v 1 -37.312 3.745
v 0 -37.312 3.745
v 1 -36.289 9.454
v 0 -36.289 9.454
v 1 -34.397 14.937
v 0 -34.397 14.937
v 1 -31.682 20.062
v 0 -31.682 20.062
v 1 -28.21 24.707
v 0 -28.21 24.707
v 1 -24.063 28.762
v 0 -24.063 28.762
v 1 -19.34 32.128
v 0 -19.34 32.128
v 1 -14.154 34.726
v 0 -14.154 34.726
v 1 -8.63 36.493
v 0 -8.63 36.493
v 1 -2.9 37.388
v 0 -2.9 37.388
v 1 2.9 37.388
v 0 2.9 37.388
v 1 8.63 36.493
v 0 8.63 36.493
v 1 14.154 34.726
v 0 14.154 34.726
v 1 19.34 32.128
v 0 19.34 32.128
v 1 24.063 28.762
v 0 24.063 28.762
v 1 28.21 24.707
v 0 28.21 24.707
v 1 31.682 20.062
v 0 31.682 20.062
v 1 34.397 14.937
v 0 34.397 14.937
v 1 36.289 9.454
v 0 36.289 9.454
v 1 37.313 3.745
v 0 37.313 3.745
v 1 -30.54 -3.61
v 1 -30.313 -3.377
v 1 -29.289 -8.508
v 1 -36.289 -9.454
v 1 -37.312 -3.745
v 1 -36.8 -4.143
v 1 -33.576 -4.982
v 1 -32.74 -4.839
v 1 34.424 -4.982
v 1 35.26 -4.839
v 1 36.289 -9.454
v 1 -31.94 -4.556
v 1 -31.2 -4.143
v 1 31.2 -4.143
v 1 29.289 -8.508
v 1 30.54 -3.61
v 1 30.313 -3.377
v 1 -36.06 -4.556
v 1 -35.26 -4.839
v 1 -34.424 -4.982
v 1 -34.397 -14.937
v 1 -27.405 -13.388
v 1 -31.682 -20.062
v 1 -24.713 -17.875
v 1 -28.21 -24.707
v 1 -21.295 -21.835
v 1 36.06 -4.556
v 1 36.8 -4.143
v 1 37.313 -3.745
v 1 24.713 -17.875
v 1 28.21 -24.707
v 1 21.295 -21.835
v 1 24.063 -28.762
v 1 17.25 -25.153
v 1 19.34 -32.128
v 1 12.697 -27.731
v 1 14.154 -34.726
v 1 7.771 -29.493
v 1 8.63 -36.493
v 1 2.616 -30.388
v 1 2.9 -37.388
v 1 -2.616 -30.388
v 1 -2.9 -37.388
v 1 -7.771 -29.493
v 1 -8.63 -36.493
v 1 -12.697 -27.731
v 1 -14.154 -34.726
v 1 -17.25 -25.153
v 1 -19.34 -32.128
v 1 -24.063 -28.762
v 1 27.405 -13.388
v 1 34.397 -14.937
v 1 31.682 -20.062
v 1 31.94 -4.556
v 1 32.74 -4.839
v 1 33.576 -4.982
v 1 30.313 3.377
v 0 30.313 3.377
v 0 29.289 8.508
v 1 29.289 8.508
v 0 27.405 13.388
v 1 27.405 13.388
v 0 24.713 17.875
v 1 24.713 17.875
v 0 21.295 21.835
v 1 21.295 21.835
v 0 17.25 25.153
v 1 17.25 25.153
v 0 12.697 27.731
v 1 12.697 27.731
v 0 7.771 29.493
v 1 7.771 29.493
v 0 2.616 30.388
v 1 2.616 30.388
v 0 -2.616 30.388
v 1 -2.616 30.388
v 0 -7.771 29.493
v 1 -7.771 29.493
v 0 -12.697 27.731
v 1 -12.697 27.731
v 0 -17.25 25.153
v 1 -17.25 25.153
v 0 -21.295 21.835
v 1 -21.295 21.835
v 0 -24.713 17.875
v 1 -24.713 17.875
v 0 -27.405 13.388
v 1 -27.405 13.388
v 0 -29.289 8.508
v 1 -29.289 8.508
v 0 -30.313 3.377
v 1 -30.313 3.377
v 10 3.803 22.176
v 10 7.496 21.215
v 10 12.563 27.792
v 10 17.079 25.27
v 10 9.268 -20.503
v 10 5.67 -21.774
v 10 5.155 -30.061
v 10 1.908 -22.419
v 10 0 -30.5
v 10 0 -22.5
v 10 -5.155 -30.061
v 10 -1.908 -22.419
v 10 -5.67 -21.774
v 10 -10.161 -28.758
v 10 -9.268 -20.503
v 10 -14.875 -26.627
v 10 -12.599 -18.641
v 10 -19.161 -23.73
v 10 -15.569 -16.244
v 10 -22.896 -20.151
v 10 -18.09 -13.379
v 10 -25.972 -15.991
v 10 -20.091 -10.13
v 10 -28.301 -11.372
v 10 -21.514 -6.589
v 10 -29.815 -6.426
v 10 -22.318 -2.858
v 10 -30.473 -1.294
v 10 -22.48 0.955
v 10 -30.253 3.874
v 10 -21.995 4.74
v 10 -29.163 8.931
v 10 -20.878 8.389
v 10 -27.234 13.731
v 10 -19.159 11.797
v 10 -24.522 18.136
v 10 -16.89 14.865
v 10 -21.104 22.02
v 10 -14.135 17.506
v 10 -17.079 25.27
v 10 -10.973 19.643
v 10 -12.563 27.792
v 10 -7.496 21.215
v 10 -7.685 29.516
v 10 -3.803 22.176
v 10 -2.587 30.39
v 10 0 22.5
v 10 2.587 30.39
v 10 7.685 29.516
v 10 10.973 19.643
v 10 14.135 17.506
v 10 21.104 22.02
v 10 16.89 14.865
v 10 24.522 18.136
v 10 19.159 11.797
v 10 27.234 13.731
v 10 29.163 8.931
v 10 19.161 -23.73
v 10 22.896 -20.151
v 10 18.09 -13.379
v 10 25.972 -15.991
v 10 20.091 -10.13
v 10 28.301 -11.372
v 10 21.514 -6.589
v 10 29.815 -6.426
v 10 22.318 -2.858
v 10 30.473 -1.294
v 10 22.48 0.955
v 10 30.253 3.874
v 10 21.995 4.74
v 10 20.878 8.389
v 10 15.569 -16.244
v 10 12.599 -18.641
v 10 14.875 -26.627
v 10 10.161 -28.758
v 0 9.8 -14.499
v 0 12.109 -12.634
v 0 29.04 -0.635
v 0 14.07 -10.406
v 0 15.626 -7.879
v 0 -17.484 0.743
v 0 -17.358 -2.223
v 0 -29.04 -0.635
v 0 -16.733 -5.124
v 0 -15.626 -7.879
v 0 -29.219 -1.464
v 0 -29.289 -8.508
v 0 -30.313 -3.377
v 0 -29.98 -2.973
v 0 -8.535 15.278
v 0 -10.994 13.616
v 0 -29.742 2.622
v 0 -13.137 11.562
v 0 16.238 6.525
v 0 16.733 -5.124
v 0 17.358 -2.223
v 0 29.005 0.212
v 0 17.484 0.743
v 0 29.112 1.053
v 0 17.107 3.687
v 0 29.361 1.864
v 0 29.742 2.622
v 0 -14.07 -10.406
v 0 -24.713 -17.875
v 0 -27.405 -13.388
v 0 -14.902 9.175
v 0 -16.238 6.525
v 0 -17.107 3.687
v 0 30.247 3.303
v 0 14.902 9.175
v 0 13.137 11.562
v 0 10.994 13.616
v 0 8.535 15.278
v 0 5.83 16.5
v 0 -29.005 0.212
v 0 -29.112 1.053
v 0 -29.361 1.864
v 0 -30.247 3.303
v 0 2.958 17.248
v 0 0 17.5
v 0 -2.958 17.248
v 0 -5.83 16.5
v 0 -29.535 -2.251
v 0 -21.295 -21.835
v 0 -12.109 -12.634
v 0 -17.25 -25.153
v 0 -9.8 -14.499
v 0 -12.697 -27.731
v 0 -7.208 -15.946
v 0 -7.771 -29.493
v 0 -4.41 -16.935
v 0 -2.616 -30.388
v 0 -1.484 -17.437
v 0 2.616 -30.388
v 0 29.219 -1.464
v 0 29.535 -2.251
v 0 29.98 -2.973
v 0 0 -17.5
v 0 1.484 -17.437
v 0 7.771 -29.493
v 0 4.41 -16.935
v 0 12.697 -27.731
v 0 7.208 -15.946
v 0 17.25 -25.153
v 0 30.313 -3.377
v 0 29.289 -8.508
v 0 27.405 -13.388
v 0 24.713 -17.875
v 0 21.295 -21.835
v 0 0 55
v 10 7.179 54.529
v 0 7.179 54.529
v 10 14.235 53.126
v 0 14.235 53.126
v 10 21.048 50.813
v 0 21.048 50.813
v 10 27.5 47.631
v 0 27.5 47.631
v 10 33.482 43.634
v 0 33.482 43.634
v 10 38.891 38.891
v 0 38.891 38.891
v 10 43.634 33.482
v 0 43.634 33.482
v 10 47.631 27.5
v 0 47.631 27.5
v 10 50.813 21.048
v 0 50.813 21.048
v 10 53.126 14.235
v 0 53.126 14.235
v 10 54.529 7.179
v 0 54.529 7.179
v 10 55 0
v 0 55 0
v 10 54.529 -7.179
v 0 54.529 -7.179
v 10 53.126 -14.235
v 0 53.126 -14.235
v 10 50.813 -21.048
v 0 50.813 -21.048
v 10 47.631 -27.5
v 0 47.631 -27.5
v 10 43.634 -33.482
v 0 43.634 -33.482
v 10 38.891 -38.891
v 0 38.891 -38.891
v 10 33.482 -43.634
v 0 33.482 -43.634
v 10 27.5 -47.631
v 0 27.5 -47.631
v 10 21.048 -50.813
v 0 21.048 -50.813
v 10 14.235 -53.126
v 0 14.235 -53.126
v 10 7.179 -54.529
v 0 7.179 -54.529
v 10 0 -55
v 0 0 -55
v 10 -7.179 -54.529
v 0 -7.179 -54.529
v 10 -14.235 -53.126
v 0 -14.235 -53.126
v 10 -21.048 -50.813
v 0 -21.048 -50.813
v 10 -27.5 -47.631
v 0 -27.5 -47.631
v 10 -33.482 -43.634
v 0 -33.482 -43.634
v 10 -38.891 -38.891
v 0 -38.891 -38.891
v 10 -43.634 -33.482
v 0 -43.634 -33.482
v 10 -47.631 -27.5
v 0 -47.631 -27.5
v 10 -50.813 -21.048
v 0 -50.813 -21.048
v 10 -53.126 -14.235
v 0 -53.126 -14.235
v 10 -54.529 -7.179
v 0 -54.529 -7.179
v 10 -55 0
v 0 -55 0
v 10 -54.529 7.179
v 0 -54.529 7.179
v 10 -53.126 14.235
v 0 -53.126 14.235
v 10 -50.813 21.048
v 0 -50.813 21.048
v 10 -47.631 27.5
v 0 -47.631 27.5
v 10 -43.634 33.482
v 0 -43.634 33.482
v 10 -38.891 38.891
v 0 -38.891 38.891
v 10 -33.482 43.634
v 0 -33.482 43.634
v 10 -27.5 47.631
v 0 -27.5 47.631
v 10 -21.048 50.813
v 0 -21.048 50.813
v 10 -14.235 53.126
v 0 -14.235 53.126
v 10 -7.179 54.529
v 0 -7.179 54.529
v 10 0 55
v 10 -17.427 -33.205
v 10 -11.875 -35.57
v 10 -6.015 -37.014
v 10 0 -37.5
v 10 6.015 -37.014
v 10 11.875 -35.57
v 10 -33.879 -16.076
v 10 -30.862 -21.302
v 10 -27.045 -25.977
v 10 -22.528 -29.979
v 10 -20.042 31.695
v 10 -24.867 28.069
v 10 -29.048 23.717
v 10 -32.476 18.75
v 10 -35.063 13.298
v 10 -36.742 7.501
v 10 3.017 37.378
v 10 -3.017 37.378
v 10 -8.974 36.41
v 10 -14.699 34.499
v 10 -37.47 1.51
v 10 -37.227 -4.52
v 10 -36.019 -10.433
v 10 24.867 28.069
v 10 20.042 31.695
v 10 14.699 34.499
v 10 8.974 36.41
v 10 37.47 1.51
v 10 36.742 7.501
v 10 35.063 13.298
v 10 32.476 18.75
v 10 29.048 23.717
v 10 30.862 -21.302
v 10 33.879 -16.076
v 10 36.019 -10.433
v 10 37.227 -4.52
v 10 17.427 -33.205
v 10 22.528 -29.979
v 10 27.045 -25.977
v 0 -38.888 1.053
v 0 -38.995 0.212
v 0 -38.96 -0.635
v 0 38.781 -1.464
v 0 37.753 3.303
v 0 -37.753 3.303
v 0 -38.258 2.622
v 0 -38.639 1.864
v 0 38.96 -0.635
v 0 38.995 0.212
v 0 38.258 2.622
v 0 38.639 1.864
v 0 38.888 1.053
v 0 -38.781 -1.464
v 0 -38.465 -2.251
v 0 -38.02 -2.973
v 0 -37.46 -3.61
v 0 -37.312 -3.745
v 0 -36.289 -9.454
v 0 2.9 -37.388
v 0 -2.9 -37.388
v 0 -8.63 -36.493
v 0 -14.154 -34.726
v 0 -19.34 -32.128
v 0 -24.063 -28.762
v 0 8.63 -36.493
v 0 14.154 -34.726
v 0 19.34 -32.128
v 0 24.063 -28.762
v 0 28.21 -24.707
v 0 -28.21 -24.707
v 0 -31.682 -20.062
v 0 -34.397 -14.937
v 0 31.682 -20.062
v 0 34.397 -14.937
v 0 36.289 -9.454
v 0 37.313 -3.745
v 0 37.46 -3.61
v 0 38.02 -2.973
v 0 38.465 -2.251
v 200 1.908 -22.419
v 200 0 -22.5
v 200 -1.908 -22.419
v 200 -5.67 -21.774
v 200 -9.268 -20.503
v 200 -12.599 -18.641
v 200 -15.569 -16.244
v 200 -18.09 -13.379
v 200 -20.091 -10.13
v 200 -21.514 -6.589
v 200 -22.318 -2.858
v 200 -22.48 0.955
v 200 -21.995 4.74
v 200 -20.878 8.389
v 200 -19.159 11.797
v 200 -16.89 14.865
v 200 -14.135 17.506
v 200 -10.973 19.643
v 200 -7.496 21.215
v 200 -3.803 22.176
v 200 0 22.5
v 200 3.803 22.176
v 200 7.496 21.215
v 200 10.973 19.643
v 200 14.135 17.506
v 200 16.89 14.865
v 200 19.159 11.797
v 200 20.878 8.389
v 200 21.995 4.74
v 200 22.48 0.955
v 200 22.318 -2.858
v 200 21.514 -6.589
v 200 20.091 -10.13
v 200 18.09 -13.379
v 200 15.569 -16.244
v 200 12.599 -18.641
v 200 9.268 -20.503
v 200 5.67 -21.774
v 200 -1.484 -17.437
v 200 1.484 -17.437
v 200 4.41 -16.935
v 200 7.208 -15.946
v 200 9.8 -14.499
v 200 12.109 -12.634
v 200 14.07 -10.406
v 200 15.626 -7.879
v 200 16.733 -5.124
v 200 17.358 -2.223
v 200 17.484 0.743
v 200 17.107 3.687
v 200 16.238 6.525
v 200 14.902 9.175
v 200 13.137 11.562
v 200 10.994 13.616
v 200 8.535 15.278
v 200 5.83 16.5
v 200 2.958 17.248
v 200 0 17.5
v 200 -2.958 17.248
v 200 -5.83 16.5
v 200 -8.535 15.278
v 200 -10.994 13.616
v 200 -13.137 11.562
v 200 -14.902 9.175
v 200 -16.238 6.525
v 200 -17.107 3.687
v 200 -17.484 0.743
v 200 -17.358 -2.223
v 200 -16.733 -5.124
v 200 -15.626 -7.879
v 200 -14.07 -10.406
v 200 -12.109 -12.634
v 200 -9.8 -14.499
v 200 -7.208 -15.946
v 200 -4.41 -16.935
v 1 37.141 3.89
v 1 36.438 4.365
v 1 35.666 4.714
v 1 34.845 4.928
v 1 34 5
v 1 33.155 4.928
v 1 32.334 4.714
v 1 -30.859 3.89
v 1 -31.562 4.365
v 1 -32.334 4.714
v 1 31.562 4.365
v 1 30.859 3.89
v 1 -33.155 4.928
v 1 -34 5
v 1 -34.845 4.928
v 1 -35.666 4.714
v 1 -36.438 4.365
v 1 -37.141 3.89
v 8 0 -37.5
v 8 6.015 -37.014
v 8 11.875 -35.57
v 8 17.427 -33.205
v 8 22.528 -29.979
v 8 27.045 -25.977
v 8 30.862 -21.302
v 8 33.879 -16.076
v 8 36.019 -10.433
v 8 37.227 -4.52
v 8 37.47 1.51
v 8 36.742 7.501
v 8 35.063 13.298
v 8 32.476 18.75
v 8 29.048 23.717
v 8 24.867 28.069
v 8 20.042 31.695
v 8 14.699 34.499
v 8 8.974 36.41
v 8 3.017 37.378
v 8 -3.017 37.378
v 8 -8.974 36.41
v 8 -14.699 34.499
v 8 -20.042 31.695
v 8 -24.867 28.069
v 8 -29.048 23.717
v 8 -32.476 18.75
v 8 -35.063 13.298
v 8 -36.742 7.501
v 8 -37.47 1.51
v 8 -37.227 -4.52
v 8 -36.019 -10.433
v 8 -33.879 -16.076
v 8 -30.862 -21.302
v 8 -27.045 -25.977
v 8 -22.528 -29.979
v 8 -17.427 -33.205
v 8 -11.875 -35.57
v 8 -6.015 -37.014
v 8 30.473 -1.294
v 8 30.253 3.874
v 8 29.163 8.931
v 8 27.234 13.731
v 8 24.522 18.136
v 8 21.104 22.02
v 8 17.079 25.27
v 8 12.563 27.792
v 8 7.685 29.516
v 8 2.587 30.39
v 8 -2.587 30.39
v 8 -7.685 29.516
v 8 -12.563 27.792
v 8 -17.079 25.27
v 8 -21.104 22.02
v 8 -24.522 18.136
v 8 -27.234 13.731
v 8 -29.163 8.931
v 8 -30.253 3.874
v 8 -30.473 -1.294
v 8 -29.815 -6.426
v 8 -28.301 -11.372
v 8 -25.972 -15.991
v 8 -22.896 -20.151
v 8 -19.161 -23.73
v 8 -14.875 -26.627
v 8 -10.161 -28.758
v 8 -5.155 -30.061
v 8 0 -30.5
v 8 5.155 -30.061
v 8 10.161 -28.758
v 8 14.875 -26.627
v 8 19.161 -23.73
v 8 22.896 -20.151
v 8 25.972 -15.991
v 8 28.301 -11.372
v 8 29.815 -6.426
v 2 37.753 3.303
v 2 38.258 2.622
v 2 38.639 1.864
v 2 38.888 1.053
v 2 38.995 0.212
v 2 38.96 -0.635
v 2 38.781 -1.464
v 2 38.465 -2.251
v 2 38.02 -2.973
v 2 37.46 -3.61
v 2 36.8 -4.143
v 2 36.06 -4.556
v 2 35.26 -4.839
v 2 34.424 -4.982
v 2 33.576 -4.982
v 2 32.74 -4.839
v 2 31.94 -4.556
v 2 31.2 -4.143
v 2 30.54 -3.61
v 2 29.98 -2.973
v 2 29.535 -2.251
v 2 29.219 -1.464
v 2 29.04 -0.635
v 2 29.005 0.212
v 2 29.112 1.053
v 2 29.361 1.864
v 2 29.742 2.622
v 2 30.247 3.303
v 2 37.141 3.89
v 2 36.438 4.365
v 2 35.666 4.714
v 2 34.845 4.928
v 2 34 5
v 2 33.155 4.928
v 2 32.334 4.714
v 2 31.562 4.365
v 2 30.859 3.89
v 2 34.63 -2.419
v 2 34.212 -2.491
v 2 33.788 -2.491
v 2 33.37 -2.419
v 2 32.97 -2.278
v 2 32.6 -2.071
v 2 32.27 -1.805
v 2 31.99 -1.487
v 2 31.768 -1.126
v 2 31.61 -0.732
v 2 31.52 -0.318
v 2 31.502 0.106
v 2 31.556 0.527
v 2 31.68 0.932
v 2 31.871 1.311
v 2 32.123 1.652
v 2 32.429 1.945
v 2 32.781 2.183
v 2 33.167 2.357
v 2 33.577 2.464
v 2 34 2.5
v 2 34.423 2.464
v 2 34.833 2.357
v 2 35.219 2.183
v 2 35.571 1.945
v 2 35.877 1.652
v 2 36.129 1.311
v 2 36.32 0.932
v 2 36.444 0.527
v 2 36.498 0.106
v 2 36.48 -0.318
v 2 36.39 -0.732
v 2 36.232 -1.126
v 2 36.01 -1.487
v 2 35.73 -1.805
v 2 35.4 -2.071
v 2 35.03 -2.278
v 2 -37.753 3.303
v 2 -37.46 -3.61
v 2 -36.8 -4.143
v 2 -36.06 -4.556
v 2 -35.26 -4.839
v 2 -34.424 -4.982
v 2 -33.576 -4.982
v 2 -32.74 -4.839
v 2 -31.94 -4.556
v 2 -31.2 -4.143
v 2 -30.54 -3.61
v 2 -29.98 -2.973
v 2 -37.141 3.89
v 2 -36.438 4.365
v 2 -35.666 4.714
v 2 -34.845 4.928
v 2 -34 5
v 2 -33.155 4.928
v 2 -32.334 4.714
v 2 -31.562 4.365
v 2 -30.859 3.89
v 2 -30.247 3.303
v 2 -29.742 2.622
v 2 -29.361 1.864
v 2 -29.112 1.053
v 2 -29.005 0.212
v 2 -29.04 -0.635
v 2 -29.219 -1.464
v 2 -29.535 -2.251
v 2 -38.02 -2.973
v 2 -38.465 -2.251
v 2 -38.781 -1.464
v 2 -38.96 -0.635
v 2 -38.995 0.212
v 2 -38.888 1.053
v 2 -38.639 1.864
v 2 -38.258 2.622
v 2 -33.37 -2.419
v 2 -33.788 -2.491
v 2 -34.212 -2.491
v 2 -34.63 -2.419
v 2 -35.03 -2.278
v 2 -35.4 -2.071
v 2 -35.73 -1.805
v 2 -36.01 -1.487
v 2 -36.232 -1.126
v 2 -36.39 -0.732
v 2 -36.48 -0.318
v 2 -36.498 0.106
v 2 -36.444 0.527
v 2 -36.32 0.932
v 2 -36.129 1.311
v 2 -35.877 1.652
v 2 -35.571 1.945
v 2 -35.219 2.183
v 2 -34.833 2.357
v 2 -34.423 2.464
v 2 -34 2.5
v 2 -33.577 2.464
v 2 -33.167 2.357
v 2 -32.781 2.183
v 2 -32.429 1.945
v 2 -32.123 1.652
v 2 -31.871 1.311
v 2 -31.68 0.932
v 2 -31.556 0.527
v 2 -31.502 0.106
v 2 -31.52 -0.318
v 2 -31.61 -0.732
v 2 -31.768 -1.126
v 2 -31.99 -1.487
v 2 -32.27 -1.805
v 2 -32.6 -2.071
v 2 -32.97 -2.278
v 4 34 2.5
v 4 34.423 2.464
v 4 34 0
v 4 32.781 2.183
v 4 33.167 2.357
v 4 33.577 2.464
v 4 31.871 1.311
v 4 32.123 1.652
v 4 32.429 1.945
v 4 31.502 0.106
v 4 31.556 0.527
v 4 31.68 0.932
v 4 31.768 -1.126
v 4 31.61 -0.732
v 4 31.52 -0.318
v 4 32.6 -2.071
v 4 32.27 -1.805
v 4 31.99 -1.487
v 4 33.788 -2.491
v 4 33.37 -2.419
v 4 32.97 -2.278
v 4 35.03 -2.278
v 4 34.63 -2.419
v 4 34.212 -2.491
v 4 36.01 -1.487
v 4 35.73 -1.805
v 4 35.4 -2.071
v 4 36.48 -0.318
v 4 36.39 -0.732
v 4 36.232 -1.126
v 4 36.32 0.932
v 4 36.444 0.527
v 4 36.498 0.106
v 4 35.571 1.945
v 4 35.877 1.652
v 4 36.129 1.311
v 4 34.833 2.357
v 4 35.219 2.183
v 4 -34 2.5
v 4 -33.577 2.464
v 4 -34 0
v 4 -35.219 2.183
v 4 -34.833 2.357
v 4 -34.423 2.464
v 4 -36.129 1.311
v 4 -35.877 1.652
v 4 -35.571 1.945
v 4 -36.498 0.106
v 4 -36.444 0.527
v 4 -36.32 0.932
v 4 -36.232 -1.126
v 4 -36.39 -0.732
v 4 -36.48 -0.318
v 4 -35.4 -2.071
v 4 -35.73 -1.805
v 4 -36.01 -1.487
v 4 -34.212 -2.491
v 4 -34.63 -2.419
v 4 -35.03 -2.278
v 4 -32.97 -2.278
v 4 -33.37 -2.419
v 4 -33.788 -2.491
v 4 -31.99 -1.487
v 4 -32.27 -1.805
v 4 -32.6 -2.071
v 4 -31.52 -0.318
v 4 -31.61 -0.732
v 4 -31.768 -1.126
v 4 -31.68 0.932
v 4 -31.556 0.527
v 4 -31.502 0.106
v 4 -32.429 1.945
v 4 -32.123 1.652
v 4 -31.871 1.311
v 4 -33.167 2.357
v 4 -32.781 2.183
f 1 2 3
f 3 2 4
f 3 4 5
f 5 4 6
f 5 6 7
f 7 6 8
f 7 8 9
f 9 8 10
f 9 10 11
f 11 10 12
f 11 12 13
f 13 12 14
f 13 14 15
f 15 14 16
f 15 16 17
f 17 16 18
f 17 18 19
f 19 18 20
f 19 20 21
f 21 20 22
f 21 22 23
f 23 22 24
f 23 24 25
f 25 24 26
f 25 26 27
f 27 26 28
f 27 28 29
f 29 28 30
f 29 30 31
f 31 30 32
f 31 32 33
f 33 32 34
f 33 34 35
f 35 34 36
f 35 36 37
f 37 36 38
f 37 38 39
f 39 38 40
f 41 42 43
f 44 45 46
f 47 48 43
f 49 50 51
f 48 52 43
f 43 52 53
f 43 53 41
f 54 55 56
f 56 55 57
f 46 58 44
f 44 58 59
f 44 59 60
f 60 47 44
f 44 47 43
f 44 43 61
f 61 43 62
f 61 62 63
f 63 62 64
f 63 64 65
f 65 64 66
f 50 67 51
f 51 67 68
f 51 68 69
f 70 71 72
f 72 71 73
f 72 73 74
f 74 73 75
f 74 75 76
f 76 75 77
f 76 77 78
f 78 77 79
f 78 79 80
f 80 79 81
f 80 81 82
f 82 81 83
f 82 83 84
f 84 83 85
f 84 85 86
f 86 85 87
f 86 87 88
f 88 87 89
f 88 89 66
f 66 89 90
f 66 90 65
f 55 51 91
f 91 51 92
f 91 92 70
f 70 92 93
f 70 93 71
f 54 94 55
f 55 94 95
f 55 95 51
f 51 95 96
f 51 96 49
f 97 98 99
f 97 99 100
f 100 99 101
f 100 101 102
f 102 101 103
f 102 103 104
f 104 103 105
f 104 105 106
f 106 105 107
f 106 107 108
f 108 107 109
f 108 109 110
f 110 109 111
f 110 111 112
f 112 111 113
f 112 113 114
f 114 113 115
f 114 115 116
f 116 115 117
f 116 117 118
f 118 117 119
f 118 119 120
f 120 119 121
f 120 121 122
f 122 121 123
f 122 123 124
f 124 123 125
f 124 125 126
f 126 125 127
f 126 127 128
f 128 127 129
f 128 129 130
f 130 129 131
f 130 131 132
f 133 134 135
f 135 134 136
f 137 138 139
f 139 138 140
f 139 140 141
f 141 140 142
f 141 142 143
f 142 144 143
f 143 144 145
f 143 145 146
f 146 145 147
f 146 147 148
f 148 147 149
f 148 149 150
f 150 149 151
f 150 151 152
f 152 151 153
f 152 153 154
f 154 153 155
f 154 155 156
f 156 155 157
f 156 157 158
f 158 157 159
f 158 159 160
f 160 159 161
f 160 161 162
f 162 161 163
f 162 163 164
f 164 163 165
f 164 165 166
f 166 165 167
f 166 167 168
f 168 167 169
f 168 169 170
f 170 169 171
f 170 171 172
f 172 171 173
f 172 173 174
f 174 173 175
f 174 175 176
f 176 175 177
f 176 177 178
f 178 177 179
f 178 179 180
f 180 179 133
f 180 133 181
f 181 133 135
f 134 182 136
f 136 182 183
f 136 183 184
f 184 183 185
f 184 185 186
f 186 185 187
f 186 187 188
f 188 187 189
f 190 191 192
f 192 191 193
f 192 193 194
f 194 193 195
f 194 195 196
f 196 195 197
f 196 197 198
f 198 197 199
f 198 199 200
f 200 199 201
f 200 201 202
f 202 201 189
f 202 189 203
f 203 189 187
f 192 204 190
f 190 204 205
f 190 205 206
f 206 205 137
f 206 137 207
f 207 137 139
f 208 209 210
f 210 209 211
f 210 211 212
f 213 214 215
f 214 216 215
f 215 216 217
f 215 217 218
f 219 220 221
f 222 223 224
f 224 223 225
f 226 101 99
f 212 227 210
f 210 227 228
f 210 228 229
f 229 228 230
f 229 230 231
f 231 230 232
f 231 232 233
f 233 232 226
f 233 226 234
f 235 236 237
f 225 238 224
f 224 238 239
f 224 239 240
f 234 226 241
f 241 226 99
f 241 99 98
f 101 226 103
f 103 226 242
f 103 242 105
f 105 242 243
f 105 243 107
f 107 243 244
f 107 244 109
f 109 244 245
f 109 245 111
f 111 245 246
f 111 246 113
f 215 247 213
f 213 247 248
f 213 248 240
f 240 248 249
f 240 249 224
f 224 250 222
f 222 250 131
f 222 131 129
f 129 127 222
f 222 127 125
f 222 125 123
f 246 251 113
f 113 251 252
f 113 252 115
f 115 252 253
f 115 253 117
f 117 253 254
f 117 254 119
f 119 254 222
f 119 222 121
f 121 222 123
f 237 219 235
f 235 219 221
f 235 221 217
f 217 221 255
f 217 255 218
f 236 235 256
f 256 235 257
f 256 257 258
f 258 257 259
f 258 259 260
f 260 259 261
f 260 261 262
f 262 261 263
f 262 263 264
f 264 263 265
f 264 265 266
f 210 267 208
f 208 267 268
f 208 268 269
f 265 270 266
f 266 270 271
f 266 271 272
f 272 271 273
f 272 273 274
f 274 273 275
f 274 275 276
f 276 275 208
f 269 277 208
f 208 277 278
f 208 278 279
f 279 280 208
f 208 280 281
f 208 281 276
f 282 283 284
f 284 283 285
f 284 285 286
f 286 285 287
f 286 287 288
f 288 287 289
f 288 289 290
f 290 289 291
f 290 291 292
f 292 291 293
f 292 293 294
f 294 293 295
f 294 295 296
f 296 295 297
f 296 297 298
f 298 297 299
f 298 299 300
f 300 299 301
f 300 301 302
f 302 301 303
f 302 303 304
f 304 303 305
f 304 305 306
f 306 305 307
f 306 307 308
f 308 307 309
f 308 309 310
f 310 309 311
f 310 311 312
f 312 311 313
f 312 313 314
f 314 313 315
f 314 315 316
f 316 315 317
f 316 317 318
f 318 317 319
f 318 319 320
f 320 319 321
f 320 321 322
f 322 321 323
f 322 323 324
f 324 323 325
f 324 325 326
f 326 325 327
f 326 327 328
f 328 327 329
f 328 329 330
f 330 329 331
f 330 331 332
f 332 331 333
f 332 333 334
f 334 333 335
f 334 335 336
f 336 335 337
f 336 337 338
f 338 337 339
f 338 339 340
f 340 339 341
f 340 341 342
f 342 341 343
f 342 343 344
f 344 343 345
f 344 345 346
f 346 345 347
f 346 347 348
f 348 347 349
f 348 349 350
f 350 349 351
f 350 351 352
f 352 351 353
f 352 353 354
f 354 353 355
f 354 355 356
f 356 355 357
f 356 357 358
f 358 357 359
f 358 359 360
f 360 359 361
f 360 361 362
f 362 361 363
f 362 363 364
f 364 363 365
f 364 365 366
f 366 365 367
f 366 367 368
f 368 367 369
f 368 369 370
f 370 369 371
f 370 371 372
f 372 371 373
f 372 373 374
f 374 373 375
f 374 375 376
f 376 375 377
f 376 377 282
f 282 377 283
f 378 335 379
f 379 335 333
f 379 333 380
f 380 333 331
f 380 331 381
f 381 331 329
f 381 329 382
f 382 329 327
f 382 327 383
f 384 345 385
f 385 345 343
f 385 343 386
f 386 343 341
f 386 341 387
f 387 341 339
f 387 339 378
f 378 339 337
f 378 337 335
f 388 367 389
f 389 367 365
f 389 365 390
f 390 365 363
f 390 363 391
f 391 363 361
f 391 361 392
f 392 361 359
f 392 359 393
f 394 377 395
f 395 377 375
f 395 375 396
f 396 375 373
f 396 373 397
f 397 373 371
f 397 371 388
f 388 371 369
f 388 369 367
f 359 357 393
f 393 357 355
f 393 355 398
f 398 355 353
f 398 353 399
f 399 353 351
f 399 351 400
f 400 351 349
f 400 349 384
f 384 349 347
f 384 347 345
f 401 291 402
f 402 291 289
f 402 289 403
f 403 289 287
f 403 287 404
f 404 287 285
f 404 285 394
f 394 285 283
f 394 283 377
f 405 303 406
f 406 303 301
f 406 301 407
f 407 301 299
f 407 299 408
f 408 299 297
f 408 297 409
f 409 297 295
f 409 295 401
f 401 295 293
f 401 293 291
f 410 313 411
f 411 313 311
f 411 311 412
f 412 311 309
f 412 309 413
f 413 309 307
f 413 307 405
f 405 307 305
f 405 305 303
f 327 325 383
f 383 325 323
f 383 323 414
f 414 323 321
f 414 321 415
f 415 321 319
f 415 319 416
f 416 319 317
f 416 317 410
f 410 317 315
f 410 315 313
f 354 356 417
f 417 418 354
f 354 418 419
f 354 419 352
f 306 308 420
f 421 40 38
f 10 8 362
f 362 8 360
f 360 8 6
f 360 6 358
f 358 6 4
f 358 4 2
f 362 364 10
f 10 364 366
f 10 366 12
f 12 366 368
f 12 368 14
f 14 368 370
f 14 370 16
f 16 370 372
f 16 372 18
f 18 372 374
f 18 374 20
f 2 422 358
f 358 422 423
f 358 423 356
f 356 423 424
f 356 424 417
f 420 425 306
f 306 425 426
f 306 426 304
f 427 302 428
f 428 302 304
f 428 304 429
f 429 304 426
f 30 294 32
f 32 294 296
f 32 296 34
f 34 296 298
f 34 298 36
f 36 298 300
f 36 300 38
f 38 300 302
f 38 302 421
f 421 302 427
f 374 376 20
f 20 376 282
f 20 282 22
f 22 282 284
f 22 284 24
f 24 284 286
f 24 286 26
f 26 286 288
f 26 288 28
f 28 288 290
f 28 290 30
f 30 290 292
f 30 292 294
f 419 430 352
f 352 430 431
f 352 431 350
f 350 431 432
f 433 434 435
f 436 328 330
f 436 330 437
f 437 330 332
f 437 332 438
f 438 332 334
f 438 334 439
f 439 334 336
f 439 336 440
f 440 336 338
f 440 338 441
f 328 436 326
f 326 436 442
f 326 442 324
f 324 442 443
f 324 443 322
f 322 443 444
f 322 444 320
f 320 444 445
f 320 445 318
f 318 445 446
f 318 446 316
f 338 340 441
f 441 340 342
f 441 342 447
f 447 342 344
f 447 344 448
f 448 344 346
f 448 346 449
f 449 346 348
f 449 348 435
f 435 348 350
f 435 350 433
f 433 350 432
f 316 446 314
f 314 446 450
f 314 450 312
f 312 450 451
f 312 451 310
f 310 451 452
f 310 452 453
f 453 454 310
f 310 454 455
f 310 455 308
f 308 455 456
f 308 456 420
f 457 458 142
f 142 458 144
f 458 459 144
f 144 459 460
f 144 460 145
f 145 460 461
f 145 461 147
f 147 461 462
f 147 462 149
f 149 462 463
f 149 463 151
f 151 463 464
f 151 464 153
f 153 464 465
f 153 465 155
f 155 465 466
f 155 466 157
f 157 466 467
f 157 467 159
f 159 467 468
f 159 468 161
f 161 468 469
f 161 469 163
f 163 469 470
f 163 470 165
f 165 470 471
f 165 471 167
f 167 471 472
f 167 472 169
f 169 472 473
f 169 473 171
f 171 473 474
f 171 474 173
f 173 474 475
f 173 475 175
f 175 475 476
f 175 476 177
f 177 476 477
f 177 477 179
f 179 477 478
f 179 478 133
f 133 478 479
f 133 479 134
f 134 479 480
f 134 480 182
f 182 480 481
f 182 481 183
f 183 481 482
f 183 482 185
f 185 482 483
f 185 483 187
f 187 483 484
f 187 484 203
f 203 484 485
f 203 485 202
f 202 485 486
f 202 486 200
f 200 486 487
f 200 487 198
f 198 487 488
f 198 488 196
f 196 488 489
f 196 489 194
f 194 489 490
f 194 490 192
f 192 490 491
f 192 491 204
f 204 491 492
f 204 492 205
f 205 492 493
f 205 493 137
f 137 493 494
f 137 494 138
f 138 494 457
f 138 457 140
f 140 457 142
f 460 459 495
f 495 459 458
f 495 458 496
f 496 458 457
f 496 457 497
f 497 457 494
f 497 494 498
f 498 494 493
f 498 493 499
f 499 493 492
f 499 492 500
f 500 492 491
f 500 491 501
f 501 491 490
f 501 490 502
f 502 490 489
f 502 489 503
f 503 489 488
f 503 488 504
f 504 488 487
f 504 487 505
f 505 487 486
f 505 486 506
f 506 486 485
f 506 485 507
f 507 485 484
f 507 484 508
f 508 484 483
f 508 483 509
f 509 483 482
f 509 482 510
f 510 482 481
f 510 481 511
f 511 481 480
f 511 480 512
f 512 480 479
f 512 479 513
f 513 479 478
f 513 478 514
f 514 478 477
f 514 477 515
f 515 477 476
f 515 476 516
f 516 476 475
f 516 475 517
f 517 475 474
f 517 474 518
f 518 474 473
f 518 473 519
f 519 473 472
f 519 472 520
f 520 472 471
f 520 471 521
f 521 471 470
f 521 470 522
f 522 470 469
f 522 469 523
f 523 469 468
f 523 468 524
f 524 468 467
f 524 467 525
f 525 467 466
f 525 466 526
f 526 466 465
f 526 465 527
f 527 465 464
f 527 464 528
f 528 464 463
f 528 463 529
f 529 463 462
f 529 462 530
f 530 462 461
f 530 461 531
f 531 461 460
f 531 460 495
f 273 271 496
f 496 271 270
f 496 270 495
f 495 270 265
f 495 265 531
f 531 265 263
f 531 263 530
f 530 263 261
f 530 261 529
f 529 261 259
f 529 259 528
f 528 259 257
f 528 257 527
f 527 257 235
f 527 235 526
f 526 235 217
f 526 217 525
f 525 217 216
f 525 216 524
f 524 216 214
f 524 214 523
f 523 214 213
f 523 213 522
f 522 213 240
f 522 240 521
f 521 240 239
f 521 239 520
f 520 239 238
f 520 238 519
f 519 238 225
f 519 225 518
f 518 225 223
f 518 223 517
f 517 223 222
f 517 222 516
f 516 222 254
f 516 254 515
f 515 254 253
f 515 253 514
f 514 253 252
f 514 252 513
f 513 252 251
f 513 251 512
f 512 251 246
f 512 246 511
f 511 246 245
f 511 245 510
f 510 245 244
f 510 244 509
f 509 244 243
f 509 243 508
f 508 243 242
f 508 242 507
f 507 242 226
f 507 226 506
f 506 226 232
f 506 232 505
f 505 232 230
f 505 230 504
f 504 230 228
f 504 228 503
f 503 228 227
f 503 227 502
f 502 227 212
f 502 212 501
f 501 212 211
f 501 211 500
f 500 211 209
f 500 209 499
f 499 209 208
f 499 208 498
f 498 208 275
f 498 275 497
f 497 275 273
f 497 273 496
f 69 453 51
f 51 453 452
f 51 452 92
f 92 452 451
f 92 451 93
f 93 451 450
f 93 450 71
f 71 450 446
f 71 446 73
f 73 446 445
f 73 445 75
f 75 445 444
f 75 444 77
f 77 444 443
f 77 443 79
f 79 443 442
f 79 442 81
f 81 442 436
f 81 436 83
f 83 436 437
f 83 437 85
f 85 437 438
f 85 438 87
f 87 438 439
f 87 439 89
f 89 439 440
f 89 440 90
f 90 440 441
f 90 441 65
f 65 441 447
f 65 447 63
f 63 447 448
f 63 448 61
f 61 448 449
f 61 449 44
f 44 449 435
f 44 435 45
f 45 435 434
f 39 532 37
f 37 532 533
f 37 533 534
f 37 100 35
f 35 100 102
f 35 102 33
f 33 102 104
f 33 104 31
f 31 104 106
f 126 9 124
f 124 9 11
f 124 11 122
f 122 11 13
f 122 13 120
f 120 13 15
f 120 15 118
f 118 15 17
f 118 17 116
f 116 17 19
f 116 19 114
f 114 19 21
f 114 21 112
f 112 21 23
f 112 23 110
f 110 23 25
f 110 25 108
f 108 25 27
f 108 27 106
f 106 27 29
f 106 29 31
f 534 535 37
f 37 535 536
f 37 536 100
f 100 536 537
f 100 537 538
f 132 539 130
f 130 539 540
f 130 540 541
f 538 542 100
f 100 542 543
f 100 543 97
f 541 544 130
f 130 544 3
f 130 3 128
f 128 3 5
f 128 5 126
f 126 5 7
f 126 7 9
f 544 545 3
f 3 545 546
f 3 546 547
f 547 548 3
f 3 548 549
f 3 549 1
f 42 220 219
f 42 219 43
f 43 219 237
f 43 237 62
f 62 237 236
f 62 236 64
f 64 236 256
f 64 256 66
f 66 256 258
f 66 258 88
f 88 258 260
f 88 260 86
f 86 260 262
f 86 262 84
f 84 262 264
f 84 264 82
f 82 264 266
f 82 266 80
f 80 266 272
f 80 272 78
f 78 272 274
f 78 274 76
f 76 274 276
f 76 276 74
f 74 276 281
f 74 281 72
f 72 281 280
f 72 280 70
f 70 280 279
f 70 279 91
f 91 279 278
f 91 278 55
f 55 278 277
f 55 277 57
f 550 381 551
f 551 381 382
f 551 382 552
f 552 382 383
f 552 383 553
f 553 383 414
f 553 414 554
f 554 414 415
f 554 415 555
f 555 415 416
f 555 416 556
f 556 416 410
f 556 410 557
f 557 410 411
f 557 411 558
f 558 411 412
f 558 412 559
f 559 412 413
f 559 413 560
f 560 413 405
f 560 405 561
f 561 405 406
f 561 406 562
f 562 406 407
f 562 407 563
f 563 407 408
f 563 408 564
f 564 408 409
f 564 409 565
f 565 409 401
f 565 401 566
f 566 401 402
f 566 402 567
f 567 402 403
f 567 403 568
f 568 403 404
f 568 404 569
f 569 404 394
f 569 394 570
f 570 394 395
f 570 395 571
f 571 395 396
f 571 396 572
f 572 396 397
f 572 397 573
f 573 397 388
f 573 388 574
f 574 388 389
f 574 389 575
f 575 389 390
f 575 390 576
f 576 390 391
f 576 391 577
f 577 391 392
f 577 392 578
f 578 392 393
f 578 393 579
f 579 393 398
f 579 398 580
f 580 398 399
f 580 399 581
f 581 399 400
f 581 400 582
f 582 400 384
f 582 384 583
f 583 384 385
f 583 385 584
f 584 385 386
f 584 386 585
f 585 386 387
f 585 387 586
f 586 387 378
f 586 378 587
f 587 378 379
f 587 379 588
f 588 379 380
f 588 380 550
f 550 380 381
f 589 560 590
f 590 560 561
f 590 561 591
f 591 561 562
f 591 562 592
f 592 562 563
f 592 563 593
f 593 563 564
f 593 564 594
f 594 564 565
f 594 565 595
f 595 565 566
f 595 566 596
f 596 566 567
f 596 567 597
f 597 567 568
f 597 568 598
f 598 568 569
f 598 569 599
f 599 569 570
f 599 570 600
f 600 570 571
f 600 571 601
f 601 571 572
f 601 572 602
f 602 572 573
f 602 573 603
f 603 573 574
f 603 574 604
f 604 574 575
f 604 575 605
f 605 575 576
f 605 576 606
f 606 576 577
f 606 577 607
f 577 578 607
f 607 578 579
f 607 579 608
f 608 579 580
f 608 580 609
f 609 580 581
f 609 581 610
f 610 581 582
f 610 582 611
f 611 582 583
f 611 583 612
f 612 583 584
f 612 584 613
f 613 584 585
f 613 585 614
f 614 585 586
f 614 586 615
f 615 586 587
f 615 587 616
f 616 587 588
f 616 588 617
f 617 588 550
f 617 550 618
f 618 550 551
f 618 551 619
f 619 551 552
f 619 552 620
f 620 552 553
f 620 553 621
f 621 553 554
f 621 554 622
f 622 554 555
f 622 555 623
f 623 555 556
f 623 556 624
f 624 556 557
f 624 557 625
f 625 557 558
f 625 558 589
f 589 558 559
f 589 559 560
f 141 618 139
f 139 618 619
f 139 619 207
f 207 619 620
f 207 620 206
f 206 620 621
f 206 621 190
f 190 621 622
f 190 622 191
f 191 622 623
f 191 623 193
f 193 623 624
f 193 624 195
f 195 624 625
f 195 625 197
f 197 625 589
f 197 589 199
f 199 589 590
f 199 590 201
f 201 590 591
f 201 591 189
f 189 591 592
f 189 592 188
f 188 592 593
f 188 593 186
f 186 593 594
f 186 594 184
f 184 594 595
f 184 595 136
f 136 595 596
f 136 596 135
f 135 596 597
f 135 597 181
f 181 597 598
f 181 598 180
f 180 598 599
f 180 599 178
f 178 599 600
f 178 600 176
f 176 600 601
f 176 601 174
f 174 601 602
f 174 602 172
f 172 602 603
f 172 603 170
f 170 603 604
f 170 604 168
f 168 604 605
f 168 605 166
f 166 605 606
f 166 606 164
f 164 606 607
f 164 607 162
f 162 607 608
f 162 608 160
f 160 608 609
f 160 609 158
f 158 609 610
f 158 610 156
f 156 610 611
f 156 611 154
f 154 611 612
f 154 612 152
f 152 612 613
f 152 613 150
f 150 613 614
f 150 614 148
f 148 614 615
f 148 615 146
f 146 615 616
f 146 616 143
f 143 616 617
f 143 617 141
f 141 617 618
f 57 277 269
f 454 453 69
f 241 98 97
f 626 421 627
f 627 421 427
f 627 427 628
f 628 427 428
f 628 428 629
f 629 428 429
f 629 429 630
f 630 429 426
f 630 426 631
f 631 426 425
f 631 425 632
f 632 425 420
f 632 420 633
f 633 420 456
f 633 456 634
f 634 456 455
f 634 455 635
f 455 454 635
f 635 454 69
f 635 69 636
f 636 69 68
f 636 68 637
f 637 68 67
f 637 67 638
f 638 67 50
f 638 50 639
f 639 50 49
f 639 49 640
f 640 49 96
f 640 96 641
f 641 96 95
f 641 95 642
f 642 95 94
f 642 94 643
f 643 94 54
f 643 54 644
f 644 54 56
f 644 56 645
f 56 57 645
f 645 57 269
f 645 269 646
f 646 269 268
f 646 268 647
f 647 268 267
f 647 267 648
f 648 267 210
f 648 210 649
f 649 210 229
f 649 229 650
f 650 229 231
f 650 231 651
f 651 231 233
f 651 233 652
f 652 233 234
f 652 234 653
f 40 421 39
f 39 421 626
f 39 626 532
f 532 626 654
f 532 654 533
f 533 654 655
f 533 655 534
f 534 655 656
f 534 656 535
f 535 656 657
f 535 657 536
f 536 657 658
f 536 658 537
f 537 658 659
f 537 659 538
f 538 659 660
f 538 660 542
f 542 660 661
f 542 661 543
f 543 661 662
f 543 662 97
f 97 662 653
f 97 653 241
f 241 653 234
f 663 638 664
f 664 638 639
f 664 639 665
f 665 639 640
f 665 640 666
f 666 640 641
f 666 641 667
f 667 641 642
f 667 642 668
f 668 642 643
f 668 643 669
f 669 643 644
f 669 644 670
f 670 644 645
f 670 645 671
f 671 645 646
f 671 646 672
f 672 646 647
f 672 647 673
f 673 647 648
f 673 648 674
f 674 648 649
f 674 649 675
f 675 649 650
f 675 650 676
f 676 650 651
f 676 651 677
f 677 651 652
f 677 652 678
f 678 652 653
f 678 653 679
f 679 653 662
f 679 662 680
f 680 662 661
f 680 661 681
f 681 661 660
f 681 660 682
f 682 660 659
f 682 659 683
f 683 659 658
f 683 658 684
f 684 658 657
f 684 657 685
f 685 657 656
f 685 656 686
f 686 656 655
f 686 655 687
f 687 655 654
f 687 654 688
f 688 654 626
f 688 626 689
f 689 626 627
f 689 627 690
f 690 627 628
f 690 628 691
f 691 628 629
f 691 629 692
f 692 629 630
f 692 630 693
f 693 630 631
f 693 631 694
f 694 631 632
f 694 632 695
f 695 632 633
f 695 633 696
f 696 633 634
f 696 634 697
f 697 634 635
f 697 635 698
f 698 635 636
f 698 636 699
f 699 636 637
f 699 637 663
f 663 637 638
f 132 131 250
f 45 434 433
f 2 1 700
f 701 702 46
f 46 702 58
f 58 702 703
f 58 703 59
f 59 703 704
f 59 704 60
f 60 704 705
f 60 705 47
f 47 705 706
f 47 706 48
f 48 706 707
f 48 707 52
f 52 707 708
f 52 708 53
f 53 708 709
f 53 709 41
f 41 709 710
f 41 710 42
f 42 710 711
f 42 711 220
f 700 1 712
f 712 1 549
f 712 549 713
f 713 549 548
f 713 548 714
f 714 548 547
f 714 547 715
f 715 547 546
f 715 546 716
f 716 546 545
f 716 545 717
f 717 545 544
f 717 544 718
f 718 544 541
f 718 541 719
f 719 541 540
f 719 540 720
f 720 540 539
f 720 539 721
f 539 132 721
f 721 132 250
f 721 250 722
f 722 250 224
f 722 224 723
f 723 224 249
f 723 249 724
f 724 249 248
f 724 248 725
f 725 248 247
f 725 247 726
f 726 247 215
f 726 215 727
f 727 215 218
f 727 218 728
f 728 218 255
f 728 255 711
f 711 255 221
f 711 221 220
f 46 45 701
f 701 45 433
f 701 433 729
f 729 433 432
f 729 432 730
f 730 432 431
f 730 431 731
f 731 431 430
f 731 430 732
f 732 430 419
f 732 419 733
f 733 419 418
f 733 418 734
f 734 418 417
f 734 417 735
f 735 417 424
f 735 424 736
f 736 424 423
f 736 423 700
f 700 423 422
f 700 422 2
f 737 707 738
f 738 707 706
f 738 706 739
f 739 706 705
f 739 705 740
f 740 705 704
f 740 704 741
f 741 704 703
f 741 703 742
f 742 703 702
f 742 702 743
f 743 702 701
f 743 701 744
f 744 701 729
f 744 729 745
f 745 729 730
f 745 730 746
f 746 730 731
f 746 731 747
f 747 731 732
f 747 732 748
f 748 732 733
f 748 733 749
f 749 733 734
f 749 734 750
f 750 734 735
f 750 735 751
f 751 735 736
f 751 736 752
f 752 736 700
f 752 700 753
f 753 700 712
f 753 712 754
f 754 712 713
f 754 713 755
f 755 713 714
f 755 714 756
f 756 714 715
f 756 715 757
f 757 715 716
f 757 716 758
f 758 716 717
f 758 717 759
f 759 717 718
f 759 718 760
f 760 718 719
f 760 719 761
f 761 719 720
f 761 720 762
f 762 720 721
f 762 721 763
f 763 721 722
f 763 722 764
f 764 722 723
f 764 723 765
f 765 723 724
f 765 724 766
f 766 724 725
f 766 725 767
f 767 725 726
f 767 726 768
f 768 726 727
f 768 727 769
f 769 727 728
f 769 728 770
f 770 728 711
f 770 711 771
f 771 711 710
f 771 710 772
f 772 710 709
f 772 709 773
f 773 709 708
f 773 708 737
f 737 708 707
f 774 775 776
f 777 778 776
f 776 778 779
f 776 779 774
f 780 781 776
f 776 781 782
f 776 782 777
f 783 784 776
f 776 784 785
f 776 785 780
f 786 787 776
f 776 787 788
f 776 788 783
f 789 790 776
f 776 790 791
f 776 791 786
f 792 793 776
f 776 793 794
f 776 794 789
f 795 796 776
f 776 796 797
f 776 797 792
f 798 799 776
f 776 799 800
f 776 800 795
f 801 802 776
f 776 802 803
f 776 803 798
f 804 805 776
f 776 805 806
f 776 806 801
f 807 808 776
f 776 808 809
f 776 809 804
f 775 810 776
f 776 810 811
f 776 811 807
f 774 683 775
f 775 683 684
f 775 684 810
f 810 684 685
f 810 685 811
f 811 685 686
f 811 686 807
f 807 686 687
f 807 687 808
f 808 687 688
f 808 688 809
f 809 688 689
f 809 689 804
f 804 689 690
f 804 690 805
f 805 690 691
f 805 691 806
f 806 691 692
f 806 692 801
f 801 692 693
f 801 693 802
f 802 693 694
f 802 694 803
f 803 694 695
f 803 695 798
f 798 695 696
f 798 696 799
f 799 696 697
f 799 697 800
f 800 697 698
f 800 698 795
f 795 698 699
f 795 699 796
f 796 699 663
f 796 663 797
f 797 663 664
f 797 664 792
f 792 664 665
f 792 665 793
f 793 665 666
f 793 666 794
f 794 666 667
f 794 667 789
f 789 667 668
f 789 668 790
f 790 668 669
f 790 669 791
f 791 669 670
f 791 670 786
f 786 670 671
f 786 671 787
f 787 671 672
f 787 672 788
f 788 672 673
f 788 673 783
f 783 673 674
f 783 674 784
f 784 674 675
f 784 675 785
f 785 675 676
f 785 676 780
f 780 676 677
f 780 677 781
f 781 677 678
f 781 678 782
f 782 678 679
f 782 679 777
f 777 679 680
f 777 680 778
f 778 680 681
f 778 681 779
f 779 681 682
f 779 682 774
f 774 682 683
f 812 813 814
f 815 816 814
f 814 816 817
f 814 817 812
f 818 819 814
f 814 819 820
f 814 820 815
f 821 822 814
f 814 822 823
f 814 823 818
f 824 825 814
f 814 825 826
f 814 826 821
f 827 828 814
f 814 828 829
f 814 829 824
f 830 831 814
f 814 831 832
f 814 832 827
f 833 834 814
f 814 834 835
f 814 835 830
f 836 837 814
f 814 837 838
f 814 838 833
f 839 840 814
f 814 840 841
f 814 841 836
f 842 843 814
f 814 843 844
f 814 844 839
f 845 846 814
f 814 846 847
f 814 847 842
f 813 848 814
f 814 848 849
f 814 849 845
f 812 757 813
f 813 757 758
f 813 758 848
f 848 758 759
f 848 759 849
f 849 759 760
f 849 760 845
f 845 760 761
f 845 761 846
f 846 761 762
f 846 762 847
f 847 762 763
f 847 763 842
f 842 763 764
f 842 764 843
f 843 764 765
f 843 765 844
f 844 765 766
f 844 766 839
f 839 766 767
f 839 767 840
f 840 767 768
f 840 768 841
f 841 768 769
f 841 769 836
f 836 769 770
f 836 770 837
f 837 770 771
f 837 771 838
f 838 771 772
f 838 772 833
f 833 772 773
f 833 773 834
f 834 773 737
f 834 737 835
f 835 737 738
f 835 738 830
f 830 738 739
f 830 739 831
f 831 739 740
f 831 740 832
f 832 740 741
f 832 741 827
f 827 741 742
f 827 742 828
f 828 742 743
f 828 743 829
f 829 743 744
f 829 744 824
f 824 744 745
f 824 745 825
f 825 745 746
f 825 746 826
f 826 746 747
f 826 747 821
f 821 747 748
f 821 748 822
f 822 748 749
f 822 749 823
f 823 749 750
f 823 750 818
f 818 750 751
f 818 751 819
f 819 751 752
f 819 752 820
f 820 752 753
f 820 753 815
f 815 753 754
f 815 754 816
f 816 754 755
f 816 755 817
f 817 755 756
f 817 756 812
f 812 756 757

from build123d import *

# Parameters (mm, degrees)
SKETCH2_R               = 55
BOSS_EXTRUDE1_DEPTH     = 10
SKETCH3_R               = 22.5
BOSS_EXTRUDE2_DEPTH     = 190
SKETCH4_R               = 17.5
CUT_EXTRUDE1_DEPTH      = 1
CUT_EXTRUDE1_DEPTH_BACK = 201
SKETCH14_R              = 37.5
SKETCH14_R_2            = 30.5
CUT_EXTRUDE5_DEPTH      = 1
SKETCH15_R              = 37.5
SKETCH15_R_2            = 30.5
CUT_EXTRUDE6_DEPTH      = 2
SKETCH16_R              = 2.5
CUT_EXTRUDE7_DEPTH      = 4
SKETCH17_R              = 5
CUT_EXTRUDE8_DEPTH      = 2


with BuildPart() as part:
    # Sketch2 → Boss-Extrude1 (new body)
    with BuildSketch(Plane(origin=(0, 0, 0), x_dir=(0, 0, -1), z_dir=(1, 0, 0))):
        Circle(SKETCH2_R)
    extrude(amount=BOSS_EXTRUDE1_DEPTH)

    # Sketch3 → Boss-Extrude2 (add)
    with BuildSketch(Plane(origin=(10, 0, 0), x_dir=(0, 0, -1), z_dir=(1, 0, 0))):
        Circle(SKETCH3_R)
    extrude(amount=BOSS_EXTRUDE2_DEPTH)

    # Sketch4 → Cut-Extrude1 (cut, two sides)
    with BuildSketch(Plane.ZY) as cut_extrude1_sk:
        Circle(SKETCH4_R)
    extrude(amount=CUT_EXTRUDE1_DEPTH, mode=Mode.SUBTRACT)
    extrude(cut_extrude1_sk.sketch, amount=-CUT_EXTRUDE1_DEPTH_BACK, mode=Mode.SUBTRACT)

    # Sketch14 → Cut-Extrude5 (cut)
    with BuildSketch(Plane.ZY):
        Circle(SKETCH14_R)
        Circle(SKETCH14_R_2, mode=Mode.SUBTRACT)
    extrude(amount=-CUT_EXTRUDE5_DEPTH, mode=Mode.SUBTRACT)

    # Sketch15 → Cut-Extrude6 (cut)
    with BuildSketch(Plane(origin=(10, 0, 0), x_dir=(0, 0, -1), z_dir=(1, 0, 0))):
        Circle(SKETCH15_R)
        Circle(SKETCH15_R_2, mode=Mode.SUBTRACT)
    extrude(amount=-CUT_EXTRUDE6_DEPTH, mode=Mode.SUBTRACT)

    # Sketch16 → Cut-Extrude7 (cut)
    with BuildSketch(Plane.ZY):
        with Locations((0, 34)):
            Circle(SKETCH16_R)
        with Locations((0, -34)):
            Circle(SKETCH16_R)
    extrude(amount=-CUT_EXTRUDE7_DEPTH, mode=Mode.SUBTRACT)

    # Sketch17 → Cut-Extrude8 (cut)
    with BuildSketch(Plane.ZY):
        with Locations((0, -34)):
            Circle(SKETCH17_R)
        with Locations((0, 34)):
            Circle(SKETCH17_R)
    extrude(amount=-CUT_EXTRUDE8_DEPTH, mode=Mode.SUBTRACT)


solid = part.part
